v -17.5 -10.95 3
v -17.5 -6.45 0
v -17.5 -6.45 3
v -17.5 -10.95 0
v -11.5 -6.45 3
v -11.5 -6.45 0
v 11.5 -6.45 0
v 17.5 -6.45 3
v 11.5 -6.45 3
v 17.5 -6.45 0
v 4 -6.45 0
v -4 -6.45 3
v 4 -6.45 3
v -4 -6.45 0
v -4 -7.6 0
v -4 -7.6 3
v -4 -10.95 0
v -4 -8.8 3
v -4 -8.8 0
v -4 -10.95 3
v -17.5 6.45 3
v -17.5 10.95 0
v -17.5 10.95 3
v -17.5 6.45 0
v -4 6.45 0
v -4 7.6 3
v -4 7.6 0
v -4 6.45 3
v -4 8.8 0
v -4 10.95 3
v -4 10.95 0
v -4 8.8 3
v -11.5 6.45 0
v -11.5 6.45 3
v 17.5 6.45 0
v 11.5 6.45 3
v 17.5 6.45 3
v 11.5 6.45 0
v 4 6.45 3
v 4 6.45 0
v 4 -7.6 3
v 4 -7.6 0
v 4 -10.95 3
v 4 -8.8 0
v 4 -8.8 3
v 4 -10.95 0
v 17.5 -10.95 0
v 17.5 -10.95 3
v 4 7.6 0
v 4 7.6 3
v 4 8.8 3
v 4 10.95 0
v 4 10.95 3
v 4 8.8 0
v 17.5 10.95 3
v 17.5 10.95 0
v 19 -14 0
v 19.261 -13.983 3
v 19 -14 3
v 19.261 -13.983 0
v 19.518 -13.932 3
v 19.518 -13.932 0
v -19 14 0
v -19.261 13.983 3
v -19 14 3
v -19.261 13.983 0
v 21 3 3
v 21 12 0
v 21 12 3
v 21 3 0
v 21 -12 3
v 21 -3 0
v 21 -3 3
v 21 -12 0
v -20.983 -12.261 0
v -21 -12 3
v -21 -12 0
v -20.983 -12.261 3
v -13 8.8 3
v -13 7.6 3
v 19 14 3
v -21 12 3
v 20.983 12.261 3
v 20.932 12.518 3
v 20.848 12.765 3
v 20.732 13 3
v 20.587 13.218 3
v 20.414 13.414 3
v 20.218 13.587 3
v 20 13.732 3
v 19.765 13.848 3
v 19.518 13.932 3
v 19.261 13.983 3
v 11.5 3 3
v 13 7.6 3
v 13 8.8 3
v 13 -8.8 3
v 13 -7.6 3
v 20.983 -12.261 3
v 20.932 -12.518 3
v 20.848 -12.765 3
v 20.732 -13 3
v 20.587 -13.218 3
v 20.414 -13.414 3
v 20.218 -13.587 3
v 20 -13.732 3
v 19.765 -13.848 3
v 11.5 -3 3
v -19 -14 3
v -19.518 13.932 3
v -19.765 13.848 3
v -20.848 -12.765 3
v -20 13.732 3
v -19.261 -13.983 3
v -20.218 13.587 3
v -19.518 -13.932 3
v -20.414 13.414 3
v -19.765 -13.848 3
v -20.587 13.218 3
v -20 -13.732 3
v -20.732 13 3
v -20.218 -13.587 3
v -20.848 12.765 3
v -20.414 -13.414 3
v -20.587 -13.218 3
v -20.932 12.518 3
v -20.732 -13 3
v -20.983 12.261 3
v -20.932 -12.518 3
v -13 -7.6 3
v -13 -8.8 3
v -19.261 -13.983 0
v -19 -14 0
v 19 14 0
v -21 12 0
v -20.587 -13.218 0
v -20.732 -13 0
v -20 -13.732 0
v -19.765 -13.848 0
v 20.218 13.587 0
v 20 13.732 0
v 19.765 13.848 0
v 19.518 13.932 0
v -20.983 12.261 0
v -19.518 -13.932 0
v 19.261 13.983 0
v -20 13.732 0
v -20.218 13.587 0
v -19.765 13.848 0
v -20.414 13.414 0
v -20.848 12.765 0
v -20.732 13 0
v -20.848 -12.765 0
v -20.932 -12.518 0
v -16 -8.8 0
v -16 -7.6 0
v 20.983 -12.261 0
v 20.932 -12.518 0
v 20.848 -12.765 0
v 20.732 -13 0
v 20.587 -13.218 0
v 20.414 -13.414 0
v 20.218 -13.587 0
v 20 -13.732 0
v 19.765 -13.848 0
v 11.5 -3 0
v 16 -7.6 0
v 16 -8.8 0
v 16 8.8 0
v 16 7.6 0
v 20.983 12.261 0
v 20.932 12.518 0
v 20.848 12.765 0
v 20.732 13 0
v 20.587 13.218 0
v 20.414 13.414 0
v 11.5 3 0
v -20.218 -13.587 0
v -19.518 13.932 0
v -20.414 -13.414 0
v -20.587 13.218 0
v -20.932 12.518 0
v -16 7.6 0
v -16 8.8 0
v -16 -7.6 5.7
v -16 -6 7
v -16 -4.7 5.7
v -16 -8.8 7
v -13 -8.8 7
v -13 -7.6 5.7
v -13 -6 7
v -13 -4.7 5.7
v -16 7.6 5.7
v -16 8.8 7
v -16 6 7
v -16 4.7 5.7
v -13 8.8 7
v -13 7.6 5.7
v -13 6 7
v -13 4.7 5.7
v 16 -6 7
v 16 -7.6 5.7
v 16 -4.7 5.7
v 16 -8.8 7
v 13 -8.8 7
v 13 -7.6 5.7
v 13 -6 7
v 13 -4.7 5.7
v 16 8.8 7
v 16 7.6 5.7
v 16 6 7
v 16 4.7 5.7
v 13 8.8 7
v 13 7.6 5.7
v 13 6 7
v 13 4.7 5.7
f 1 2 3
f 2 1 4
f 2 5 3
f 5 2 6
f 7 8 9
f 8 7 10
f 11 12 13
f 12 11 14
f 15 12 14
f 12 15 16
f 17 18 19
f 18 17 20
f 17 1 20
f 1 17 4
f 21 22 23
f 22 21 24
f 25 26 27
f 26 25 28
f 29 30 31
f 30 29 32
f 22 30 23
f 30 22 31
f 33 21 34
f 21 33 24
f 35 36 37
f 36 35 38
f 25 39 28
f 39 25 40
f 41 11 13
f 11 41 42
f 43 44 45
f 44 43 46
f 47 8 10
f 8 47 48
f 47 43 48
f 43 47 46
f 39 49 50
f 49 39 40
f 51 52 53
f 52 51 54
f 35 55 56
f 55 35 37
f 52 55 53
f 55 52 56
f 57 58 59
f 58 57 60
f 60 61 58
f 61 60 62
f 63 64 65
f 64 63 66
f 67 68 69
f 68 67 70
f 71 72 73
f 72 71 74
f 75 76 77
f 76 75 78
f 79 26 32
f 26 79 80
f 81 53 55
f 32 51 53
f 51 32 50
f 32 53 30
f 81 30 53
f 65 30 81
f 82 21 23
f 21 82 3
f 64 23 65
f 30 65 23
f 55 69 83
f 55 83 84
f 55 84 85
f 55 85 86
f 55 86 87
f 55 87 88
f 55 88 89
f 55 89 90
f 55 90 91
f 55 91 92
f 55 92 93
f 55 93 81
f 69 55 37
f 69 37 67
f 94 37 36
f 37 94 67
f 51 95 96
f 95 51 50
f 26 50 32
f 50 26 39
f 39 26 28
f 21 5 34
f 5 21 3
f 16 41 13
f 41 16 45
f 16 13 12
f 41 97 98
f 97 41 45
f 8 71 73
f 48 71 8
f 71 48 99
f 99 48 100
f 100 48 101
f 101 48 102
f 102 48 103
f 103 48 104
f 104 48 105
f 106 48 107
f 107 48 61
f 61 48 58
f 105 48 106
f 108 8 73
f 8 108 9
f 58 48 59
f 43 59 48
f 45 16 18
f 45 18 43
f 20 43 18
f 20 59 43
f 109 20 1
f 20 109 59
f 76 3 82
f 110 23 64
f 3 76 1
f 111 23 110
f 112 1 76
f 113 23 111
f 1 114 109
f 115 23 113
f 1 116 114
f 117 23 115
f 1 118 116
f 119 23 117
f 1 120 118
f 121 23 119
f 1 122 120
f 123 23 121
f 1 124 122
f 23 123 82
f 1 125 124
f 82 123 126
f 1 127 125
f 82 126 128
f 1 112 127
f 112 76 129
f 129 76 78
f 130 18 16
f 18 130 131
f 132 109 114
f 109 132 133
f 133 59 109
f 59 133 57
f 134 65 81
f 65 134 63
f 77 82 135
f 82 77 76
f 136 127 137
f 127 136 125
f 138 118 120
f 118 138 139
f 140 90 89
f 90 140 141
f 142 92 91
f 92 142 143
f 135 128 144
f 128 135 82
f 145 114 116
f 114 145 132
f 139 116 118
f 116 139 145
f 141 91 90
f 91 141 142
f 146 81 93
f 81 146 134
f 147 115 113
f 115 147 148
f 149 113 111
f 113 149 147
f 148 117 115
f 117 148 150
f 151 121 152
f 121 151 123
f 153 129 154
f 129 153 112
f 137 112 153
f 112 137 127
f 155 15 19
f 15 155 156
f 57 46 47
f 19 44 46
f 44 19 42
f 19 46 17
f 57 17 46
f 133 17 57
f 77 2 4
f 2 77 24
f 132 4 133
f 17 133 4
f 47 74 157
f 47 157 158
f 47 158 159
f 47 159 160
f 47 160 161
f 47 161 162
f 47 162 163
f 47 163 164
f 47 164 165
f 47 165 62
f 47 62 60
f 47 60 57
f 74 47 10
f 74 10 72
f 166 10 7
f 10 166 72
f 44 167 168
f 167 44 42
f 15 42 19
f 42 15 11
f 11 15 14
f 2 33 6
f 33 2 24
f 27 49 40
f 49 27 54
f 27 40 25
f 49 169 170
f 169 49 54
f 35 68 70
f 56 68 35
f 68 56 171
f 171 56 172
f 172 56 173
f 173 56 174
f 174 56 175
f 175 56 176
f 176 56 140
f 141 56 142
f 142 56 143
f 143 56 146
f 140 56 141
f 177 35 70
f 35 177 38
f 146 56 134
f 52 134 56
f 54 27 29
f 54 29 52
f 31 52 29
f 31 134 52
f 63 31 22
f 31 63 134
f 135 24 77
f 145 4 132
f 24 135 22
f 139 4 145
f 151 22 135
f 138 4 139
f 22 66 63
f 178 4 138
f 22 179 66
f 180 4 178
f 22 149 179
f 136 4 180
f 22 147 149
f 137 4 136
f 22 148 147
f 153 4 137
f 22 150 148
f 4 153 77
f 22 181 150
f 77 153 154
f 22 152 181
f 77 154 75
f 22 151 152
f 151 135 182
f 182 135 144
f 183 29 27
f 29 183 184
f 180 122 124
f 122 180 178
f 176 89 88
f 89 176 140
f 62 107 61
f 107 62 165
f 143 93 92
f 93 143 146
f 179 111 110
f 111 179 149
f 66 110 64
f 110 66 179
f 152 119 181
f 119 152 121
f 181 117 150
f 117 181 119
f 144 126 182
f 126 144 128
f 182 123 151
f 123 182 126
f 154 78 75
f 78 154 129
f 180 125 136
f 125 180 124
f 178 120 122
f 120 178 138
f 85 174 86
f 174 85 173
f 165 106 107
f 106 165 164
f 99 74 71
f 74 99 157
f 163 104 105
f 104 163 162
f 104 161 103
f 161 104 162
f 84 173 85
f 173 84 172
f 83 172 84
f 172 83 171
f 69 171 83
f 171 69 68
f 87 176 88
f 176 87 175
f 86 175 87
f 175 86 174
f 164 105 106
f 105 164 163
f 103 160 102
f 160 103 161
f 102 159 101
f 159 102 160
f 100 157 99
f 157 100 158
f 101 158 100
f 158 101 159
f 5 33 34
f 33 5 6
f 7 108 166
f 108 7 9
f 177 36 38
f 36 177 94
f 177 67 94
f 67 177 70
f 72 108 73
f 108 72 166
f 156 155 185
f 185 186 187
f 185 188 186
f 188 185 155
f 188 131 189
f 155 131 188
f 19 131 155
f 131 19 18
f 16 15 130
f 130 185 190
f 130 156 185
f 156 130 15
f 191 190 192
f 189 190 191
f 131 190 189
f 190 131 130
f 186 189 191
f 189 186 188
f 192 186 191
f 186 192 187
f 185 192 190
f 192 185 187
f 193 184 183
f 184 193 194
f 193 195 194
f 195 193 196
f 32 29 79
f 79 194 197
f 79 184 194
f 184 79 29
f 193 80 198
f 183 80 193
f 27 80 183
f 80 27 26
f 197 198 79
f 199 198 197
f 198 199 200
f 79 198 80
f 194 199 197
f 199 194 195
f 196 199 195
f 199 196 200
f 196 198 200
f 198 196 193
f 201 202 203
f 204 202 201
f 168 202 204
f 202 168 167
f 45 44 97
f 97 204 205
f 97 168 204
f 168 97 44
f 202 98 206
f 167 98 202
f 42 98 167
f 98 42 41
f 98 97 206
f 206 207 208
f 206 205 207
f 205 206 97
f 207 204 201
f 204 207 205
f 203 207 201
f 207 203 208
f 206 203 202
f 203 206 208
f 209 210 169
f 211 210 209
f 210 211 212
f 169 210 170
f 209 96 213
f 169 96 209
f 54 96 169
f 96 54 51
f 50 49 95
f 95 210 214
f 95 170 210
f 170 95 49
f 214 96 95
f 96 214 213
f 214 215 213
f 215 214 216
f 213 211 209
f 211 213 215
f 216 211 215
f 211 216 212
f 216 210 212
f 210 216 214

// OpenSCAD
// V3: longer, lower hooks after owner reported loose V2 retention.
// Units mm. Prototype dimensions, not photo measurements or verified strength.
// Body opening retains the owner's successful two-dot gauge dimensions.
$fn=48;
body_l=23; body_w=12.9; plate=3;
cable_gap=6; ear_clearance=2.7;
hook_inner=4.7; // V2 was 5.7: 1mm farther inward on each side
hook_bottom=plate+ear_clearance;
hook_top=hook_bottom+1.3;
// Four in-plane cantilevers: 12mm free length, 1.2mm bending thickness.
module finger(sx,sy) {
 mirror([sx<0?1:0,0,0]) mirror([0,sy<0?1:0,0]) {
  translate([2,7.6,0]) cube([14,1.2,plate]);
  translate([13,7.6,0]) cube([3,1.2,hook_top]);
  // Flat underside and sloped lead-in; overhang now 2.9mm.
  translate([13,0,0]) rotate([90,0,90]) linear_extrude(3)
   polygon([[hook_inner,hook_bottom],[8.8,hook_bottom],[8.8,hook_top],[6,hook_top]]);
 }
}
union() {
 difference() {
  linear_extrude(plate) offset(r=2) offset(delta=-2) square([42,28],center=true);
  translate([-body_l/2,-body_w/2,-.1]) cube([body_l,body_w,plate+.2]);
  // Side-entry channel: cable drops in sideways; connector stays attached.
  translate([body_l/2-.1,-cable_gap/2,-.1]) cube([10,cable_gap,plate+.2]);
  // Isolate flexible beams from the frame, leaving their central roots attached.
  for(sx=[-1,1],sy=[-1,1])
   mirror([sx<0?1:0,0,0]) mirror([0,sy<0?1:0,0])
    translate([4,6.45,-.1]) cube([13.5,4.5,plate+.2]);
 }
 for(sx=[-1,1],sy=[-1,1]) finger(sx,sy);
}
assert(body_l==23 && body_w==12.9);
assert(abs(hook_bottom-5.7)<0.001);
assert(hook_inner==4.7 && cable_gap==6);
